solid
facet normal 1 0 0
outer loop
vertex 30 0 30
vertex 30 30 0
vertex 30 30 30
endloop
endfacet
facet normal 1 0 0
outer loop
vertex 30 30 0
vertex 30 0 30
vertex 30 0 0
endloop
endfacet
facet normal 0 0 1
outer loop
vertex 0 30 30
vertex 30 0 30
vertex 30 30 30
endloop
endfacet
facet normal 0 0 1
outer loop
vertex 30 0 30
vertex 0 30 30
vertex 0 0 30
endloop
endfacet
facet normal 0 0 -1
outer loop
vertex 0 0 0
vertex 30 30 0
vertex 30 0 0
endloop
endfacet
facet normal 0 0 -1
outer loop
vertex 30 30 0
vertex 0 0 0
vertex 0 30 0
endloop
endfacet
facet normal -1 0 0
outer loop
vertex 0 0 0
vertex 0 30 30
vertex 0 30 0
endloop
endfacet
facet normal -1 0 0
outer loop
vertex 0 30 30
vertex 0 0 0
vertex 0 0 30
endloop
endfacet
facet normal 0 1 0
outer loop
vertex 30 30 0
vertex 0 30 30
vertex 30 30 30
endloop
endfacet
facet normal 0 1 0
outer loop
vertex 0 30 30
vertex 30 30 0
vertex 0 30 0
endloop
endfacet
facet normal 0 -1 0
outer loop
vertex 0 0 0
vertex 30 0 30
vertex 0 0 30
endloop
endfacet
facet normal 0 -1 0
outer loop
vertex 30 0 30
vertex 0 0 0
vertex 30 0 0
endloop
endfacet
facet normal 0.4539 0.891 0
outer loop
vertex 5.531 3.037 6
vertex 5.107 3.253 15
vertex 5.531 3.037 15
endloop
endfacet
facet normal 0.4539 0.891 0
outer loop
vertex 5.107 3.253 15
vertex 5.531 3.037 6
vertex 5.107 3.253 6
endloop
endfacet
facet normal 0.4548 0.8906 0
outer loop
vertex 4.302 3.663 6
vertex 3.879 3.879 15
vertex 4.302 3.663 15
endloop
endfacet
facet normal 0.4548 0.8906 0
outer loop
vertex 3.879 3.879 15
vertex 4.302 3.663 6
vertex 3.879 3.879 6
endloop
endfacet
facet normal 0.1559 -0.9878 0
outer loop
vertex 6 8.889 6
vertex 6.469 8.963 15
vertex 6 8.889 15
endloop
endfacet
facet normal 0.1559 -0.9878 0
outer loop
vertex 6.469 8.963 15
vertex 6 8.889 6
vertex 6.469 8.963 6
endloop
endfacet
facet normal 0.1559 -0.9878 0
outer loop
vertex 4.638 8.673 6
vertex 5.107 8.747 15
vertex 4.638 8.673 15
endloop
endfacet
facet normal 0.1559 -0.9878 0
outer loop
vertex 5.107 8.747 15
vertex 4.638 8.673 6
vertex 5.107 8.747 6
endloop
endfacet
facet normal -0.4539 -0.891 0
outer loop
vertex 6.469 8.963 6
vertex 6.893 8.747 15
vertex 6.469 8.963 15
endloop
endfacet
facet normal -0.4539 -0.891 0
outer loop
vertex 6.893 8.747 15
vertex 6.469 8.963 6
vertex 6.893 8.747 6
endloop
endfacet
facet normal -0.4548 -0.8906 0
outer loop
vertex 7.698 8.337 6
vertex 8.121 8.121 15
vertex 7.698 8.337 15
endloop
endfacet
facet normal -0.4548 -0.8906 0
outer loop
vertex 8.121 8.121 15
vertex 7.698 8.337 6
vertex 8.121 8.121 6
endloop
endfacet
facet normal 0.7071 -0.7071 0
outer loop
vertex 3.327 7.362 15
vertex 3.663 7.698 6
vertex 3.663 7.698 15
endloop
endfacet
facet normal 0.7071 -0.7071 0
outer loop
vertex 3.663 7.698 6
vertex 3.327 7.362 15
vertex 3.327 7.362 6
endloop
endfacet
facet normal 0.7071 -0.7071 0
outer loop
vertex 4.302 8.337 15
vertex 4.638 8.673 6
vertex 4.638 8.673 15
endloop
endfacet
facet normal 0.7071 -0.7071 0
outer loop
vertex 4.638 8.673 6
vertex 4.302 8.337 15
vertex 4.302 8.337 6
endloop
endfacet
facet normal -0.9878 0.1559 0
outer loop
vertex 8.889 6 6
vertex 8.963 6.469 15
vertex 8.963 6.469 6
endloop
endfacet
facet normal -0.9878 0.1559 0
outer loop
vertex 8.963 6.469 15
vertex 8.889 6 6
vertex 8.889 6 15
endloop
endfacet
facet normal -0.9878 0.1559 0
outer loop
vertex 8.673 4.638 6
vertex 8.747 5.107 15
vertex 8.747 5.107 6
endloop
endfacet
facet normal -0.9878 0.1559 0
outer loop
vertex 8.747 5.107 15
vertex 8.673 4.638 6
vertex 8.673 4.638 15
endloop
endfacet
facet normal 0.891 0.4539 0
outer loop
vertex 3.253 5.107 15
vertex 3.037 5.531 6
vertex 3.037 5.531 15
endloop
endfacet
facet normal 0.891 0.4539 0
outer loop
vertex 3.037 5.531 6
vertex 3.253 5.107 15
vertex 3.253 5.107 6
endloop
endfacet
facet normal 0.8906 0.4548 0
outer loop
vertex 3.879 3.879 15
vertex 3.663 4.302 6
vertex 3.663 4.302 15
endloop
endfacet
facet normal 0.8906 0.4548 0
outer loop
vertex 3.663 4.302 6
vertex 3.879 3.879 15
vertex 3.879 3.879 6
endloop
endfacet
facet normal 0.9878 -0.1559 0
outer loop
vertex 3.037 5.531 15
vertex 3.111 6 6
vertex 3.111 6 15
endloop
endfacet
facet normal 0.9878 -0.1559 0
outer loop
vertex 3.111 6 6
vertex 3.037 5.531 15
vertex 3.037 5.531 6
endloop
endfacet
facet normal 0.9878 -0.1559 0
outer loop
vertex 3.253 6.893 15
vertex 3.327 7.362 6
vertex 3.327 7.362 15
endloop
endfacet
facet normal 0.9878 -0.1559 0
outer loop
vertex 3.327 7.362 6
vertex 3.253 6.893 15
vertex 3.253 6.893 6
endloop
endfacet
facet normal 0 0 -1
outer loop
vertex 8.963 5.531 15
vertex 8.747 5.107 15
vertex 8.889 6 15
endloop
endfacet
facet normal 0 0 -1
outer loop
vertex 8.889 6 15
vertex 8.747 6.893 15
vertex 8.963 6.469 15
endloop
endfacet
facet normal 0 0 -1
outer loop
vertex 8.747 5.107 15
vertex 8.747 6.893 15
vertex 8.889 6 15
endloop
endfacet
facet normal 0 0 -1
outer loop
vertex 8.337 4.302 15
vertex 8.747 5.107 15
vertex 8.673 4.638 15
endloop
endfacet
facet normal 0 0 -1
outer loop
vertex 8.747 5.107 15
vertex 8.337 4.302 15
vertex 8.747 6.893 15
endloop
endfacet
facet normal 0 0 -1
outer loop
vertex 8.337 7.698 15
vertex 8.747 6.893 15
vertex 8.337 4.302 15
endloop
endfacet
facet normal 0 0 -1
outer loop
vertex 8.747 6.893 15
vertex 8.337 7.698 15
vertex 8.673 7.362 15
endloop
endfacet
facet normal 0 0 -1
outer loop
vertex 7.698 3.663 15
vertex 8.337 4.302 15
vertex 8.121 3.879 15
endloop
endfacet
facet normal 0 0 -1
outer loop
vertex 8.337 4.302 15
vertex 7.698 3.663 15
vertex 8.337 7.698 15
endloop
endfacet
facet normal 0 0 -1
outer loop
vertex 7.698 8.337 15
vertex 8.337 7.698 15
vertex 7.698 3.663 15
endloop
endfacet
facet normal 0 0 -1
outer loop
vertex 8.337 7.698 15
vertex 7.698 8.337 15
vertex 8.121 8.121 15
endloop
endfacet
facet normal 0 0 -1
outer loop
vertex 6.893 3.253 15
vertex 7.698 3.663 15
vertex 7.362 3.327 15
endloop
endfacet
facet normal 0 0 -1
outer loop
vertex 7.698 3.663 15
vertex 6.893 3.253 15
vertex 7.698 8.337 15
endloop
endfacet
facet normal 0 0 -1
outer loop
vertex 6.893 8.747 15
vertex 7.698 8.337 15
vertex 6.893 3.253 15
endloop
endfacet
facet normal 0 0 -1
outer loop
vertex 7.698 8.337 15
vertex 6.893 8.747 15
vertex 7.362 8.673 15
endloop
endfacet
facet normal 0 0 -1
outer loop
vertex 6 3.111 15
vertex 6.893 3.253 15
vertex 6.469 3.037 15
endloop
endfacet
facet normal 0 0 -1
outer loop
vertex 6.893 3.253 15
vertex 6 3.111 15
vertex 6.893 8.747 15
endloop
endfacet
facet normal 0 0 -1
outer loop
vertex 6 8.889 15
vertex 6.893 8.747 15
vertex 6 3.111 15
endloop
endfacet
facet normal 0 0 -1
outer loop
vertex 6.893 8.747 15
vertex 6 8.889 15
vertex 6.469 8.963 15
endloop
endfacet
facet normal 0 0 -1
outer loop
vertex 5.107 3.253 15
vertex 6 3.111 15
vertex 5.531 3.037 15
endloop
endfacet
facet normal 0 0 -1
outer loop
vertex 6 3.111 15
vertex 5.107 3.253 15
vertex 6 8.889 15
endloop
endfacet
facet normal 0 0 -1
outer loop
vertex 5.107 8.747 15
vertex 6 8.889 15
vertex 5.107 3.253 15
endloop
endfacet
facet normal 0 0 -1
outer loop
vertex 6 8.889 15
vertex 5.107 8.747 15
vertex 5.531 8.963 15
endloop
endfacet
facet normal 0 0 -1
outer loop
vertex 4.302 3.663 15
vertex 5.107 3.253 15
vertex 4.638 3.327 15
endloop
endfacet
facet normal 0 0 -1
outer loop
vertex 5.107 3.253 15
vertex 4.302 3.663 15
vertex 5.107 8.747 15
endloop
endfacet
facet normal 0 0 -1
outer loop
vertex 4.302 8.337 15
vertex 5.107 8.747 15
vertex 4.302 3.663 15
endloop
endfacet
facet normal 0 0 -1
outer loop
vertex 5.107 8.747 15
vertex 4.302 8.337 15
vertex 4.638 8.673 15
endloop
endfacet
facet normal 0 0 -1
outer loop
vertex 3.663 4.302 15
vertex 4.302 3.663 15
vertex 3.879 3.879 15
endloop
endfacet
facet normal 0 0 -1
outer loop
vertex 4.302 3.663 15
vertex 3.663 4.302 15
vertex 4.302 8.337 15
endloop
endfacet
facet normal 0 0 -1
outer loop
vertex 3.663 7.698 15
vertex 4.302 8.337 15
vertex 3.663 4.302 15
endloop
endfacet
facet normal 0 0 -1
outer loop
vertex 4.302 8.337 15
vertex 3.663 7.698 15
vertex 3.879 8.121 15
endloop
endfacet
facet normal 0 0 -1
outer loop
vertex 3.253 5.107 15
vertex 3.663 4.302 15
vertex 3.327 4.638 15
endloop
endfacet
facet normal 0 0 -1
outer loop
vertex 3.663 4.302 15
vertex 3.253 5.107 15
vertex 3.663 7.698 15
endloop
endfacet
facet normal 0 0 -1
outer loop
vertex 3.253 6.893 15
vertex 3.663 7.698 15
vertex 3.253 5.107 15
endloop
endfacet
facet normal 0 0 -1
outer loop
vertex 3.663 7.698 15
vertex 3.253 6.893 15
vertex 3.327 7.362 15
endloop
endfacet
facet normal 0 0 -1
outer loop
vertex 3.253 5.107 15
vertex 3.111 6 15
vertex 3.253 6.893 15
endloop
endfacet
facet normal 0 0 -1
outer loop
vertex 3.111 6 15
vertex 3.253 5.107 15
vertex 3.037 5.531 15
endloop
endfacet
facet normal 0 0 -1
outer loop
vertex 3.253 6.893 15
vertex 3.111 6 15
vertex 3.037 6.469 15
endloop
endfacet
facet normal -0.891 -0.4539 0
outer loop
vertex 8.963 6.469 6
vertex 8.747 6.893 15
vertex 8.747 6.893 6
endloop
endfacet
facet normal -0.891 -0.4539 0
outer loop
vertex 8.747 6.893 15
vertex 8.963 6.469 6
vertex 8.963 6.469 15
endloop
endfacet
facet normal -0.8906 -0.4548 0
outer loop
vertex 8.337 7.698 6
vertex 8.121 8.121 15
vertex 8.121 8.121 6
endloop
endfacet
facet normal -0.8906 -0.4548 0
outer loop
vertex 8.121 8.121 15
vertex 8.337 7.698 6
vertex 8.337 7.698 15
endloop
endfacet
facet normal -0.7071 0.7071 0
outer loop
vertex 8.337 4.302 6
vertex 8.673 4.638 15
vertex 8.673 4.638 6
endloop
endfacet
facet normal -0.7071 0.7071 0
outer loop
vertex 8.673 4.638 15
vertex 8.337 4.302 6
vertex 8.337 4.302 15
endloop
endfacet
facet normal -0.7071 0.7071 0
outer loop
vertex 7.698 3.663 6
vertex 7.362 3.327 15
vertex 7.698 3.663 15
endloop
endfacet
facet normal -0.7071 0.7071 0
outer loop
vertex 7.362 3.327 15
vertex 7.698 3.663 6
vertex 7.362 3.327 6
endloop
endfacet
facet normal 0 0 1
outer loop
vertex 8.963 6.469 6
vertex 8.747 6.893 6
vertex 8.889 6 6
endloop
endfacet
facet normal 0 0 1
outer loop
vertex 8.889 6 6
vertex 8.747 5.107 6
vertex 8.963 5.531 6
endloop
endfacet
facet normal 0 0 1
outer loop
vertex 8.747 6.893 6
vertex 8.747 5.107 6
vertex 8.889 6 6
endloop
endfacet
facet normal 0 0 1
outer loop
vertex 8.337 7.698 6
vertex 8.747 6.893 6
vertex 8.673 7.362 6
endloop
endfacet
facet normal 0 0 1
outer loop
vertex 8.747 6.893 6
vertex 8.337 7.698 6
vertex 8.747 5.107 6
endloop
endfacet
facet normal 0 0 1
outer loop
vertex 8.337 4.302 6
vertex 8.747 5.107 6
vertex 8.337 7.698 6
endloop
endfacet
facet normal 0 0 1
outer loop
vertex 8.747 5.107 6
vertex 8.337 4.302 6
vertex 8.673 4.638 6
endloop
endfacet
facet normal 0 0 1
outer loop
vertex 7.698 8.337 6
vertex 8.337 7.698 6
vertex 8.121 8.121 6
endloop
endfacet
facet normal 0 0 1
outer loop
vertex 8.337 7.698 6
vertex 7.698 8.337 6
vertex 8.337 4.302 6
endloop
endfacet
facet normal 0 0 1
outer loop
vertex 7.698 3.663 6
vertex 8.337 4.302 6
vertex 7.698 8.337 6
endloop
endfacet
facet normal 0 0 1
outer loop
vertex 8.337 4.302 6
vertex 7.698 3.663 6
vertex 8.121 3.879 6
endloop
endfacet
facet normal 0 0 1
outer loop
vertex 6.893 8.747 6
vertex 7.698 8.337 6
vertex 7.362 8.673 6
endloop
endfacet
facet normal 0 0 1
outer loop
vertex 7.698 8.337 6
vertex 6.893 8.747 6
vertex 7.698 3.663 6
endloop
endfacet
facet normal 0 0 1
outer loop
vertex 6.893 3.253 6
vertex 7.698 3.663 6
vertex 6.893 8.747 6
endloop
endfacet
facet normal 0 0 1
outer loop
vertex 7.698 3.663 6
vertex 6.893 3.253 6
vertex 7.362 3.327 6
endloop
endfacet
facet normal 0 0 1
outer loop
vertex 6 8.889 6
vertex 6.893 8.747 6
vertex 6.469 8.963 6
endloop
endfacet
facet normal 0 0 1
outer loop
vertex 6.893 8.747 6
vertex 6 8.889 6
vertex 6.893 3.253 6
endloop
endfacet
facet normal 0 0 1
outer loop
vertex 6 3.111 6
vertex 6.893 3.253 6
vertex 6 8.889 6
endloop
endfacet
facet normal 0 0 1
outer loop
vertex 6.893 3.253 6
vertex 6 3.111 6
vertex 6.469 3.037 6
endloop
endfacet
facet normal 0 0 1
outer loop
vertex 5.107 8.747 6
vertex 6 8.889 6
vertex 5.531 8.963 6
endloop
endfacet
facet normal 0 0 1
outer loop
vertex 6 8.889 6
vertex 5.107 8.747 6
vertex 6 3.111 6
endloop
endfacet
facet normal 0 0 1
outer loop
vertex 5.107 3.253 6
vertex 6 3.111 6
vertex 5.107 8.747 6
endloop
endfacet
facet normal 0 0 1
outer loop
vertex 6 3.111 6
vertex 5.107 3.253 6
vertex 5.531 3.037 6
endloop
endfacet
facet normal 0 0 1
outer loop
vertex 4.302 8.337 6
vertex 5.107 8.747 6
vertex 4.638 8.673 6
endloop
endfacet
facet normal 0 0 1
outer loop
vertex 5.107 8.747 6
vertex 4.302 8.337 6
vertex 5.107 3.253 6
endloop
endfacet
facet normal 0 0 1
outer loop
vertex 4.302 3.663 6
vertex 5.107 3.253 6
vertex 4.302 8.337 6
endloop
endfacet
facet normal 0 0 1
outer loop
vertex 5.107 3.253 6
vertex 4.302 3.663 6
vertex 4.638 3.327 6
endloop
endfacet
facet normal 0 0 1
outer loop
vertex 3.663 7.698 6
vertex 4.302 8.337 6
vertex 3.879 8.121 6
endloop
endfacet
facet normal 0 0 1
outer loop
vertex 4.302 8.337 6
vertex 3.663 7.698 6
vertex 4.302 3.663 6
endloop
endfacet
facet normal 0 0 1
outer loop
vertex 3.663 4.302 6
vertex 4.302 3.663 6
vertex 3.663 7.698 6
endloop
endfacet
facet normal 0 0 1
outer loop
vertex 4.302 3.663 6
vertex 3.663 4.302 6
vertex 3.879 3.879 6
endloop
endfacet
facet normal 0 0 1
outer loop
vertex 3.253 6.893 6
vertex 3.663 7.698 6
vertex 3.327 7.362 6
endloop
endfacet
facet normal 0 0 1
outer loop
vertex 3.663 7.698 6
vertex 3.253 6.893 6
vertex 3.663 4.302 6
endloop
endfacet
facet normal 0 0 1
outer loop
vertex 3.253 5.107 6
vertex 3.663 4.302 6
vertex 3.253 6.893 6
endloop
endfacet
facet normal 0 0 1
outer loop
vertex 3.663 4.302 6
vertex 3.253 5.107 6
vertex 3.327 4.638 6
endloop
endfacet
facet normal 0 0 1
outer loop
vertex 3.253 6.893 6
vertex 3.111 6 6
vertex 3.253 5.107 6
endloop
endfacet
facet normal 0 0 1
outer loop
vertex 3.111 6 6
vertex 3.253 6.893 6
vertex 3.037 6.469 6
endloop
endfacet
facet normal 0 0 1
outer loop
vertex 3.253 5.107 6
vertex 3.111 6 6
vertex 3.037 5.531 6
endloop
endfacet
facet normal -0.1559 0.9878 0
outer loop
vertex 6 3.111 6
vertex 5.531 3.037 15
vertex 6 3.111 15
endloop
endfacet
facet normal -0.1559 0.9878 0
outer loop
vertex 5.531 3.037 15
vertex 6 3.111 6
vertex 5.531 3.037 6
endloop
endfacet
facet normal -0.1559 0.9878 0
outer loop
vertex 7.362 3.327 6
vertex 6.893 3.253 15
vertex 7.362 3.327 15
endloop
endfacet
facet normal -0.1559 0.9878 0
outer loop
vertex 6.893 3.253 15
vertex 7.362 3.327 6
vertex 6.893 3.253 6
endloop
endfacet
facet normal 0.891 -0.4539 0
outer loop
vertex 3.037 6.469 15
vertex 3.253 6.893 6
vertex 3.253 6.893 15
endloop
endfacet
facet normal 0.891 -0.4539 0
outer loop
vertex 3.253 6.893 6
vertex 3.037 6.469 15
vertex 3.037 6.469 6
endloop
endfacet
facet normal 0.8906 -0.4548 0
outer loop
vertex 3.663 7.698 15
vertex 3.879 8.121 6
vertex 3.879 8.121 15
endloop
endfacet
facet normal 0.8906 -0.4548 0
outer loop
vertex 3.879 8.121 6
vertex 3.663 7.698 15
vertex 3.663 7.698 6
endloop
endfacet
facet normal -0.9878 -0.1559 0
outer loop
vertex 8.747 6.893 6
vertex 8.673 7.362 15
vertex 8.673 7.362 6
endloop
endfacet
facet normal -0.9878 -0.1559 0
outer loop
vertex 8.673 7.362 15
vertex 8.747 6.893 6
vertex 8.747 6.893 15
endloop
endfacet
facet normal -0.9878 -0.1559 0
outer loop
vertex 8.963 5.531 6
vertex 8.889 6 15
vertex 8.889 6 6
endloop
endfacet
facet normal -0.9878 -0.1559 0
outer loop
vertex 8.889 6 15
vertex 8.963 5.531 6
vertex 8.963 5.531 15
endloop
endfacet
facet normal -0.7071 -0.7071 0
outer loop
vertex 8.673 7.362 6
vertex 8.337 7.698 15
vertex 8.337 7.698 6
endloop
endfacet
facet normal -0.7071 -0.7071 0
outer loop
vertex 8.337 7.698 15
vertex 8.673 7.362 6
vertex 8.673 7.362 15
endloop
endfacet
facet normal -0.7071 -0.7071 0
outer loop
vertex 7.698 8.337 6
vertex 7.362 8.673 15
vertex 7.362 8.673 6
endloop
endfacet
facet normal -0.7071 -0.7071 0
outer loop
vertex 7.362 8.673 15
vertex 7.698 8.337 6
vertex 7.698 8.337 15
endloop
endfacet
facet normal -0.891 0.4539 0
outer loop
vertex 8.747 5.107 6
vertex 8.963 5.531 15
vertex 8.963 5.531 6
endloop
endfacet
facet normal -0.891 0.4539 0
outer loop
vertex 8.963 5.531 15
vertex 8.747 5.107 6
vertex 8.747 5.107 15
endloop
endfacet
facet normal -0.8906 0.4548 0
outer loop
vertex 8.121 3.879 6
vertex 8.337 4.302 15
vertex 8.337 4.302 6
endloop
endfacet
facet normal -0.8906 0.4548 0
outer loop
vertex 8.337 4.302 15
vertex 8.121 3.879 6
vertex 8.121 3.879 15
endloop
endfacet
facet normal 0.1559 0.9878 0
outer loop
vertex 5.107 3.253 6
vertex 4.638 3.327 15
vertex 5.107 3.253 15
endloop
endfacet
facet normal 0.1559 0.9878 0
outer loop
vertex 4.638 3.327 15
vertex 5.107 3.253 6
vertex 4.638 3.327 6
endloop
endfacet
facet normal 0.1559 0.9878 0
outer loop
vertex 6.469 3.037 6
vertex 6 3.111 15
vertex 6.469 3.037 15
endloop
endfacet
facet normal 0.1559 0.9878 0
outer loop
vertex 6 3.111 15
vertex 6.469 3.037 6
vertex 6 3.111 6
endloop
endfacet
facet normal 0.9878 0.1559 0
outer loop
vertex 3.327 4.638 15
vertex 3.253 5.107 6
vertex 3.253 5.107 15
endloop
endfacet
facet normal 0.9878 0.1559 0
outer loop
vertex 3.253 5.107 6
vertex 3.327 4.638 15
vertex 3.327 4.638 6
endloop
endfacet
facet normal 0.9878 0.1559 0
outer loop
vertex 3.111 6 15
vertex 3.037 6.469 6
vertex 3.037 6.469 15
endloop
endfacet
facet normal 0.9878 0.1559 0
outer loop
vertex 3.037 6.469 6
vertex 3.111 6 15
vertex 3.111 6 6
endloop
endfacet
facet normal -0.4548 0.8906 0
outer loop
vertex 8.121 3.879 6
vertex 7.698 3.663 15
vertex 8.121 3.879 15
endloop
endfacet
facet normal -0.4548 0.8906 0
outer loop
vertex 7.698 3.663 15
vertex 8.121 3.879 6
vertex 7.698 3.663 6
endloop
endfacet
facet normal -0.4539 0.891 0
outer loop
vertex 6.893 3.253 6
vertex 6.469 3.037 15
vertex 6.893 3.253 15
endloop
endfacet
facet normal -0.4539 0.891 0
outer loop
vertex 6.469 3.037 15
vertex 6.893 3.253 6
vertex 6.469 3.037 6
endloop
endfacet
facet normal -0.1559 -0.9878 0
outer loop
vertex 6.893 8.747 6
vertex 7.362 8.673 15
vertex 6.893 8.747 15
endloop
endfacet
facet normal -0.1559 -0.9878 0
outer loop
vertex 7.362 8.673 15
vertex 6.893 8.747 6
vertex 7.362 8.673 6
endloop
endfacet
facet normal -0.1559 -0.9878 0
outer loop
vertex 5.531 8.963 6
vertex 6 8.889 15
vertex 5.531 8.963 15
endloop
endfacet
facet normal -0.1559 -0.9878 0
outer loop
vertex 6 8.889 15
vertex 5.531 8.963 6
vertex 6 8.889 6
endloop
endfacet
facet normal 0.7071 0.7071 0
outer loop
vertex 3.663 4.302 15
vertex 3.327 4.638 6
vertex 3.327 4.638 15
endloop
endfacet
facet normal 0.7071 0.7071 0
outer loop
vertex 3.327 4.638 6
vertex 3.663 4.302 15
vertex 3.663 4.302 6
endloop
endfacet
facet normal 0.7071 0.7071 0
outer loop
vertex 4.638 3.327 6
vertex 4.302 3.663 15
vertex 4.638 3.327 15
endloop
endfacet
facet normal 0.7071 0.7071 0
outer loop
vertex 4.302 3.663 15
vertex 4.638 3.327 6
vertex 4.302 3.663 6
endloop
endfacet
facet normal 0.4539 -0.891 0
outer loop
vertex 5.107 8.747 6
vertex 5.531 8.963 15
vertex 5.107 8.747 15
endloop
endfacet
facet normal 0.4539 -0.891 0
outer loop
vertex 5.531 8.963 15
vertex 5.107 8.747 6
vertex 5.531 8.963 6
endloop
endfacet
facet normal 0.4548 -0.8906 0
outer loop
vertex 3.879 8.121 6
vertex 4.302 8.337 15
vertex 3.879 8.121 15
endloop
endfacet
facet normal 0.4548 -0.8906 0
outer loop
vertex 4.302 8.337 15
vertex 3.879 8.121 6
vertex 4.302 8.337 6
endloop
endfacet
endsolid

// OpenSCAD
// Distorted Cube

module distorted_cube(size = 20, distortion = 0.1) {
  difference() {
    cube([size, size, size]);
    
    translate([size * 0.2, size * 0.2, size * 0.2])
    rotate([0, 0, 45])
    cylinder(h = size * 0.3, r = size * 0.1);
    
    translate([size * 0.2, size * 0.2, size * 0.2])
    rotate([0, 0, -45])
    cylinder(h = size * 0.3, r = size * 0.1);
    
    translate([size * 0.2, size * 0.2, size * 0.2])
    rotate([0, 0, -45])
    cylinder(h = size * 0.3, r = size * 0.1);
    
    translate([size * 0.2, size * 0.2, size * 0.2])
    rotate([0, 0, 45])
    cylinder(h = size * 0.3, r = size * 0.1);
  }
}

distorted_cube(size = 30, distortion = 0.2);
